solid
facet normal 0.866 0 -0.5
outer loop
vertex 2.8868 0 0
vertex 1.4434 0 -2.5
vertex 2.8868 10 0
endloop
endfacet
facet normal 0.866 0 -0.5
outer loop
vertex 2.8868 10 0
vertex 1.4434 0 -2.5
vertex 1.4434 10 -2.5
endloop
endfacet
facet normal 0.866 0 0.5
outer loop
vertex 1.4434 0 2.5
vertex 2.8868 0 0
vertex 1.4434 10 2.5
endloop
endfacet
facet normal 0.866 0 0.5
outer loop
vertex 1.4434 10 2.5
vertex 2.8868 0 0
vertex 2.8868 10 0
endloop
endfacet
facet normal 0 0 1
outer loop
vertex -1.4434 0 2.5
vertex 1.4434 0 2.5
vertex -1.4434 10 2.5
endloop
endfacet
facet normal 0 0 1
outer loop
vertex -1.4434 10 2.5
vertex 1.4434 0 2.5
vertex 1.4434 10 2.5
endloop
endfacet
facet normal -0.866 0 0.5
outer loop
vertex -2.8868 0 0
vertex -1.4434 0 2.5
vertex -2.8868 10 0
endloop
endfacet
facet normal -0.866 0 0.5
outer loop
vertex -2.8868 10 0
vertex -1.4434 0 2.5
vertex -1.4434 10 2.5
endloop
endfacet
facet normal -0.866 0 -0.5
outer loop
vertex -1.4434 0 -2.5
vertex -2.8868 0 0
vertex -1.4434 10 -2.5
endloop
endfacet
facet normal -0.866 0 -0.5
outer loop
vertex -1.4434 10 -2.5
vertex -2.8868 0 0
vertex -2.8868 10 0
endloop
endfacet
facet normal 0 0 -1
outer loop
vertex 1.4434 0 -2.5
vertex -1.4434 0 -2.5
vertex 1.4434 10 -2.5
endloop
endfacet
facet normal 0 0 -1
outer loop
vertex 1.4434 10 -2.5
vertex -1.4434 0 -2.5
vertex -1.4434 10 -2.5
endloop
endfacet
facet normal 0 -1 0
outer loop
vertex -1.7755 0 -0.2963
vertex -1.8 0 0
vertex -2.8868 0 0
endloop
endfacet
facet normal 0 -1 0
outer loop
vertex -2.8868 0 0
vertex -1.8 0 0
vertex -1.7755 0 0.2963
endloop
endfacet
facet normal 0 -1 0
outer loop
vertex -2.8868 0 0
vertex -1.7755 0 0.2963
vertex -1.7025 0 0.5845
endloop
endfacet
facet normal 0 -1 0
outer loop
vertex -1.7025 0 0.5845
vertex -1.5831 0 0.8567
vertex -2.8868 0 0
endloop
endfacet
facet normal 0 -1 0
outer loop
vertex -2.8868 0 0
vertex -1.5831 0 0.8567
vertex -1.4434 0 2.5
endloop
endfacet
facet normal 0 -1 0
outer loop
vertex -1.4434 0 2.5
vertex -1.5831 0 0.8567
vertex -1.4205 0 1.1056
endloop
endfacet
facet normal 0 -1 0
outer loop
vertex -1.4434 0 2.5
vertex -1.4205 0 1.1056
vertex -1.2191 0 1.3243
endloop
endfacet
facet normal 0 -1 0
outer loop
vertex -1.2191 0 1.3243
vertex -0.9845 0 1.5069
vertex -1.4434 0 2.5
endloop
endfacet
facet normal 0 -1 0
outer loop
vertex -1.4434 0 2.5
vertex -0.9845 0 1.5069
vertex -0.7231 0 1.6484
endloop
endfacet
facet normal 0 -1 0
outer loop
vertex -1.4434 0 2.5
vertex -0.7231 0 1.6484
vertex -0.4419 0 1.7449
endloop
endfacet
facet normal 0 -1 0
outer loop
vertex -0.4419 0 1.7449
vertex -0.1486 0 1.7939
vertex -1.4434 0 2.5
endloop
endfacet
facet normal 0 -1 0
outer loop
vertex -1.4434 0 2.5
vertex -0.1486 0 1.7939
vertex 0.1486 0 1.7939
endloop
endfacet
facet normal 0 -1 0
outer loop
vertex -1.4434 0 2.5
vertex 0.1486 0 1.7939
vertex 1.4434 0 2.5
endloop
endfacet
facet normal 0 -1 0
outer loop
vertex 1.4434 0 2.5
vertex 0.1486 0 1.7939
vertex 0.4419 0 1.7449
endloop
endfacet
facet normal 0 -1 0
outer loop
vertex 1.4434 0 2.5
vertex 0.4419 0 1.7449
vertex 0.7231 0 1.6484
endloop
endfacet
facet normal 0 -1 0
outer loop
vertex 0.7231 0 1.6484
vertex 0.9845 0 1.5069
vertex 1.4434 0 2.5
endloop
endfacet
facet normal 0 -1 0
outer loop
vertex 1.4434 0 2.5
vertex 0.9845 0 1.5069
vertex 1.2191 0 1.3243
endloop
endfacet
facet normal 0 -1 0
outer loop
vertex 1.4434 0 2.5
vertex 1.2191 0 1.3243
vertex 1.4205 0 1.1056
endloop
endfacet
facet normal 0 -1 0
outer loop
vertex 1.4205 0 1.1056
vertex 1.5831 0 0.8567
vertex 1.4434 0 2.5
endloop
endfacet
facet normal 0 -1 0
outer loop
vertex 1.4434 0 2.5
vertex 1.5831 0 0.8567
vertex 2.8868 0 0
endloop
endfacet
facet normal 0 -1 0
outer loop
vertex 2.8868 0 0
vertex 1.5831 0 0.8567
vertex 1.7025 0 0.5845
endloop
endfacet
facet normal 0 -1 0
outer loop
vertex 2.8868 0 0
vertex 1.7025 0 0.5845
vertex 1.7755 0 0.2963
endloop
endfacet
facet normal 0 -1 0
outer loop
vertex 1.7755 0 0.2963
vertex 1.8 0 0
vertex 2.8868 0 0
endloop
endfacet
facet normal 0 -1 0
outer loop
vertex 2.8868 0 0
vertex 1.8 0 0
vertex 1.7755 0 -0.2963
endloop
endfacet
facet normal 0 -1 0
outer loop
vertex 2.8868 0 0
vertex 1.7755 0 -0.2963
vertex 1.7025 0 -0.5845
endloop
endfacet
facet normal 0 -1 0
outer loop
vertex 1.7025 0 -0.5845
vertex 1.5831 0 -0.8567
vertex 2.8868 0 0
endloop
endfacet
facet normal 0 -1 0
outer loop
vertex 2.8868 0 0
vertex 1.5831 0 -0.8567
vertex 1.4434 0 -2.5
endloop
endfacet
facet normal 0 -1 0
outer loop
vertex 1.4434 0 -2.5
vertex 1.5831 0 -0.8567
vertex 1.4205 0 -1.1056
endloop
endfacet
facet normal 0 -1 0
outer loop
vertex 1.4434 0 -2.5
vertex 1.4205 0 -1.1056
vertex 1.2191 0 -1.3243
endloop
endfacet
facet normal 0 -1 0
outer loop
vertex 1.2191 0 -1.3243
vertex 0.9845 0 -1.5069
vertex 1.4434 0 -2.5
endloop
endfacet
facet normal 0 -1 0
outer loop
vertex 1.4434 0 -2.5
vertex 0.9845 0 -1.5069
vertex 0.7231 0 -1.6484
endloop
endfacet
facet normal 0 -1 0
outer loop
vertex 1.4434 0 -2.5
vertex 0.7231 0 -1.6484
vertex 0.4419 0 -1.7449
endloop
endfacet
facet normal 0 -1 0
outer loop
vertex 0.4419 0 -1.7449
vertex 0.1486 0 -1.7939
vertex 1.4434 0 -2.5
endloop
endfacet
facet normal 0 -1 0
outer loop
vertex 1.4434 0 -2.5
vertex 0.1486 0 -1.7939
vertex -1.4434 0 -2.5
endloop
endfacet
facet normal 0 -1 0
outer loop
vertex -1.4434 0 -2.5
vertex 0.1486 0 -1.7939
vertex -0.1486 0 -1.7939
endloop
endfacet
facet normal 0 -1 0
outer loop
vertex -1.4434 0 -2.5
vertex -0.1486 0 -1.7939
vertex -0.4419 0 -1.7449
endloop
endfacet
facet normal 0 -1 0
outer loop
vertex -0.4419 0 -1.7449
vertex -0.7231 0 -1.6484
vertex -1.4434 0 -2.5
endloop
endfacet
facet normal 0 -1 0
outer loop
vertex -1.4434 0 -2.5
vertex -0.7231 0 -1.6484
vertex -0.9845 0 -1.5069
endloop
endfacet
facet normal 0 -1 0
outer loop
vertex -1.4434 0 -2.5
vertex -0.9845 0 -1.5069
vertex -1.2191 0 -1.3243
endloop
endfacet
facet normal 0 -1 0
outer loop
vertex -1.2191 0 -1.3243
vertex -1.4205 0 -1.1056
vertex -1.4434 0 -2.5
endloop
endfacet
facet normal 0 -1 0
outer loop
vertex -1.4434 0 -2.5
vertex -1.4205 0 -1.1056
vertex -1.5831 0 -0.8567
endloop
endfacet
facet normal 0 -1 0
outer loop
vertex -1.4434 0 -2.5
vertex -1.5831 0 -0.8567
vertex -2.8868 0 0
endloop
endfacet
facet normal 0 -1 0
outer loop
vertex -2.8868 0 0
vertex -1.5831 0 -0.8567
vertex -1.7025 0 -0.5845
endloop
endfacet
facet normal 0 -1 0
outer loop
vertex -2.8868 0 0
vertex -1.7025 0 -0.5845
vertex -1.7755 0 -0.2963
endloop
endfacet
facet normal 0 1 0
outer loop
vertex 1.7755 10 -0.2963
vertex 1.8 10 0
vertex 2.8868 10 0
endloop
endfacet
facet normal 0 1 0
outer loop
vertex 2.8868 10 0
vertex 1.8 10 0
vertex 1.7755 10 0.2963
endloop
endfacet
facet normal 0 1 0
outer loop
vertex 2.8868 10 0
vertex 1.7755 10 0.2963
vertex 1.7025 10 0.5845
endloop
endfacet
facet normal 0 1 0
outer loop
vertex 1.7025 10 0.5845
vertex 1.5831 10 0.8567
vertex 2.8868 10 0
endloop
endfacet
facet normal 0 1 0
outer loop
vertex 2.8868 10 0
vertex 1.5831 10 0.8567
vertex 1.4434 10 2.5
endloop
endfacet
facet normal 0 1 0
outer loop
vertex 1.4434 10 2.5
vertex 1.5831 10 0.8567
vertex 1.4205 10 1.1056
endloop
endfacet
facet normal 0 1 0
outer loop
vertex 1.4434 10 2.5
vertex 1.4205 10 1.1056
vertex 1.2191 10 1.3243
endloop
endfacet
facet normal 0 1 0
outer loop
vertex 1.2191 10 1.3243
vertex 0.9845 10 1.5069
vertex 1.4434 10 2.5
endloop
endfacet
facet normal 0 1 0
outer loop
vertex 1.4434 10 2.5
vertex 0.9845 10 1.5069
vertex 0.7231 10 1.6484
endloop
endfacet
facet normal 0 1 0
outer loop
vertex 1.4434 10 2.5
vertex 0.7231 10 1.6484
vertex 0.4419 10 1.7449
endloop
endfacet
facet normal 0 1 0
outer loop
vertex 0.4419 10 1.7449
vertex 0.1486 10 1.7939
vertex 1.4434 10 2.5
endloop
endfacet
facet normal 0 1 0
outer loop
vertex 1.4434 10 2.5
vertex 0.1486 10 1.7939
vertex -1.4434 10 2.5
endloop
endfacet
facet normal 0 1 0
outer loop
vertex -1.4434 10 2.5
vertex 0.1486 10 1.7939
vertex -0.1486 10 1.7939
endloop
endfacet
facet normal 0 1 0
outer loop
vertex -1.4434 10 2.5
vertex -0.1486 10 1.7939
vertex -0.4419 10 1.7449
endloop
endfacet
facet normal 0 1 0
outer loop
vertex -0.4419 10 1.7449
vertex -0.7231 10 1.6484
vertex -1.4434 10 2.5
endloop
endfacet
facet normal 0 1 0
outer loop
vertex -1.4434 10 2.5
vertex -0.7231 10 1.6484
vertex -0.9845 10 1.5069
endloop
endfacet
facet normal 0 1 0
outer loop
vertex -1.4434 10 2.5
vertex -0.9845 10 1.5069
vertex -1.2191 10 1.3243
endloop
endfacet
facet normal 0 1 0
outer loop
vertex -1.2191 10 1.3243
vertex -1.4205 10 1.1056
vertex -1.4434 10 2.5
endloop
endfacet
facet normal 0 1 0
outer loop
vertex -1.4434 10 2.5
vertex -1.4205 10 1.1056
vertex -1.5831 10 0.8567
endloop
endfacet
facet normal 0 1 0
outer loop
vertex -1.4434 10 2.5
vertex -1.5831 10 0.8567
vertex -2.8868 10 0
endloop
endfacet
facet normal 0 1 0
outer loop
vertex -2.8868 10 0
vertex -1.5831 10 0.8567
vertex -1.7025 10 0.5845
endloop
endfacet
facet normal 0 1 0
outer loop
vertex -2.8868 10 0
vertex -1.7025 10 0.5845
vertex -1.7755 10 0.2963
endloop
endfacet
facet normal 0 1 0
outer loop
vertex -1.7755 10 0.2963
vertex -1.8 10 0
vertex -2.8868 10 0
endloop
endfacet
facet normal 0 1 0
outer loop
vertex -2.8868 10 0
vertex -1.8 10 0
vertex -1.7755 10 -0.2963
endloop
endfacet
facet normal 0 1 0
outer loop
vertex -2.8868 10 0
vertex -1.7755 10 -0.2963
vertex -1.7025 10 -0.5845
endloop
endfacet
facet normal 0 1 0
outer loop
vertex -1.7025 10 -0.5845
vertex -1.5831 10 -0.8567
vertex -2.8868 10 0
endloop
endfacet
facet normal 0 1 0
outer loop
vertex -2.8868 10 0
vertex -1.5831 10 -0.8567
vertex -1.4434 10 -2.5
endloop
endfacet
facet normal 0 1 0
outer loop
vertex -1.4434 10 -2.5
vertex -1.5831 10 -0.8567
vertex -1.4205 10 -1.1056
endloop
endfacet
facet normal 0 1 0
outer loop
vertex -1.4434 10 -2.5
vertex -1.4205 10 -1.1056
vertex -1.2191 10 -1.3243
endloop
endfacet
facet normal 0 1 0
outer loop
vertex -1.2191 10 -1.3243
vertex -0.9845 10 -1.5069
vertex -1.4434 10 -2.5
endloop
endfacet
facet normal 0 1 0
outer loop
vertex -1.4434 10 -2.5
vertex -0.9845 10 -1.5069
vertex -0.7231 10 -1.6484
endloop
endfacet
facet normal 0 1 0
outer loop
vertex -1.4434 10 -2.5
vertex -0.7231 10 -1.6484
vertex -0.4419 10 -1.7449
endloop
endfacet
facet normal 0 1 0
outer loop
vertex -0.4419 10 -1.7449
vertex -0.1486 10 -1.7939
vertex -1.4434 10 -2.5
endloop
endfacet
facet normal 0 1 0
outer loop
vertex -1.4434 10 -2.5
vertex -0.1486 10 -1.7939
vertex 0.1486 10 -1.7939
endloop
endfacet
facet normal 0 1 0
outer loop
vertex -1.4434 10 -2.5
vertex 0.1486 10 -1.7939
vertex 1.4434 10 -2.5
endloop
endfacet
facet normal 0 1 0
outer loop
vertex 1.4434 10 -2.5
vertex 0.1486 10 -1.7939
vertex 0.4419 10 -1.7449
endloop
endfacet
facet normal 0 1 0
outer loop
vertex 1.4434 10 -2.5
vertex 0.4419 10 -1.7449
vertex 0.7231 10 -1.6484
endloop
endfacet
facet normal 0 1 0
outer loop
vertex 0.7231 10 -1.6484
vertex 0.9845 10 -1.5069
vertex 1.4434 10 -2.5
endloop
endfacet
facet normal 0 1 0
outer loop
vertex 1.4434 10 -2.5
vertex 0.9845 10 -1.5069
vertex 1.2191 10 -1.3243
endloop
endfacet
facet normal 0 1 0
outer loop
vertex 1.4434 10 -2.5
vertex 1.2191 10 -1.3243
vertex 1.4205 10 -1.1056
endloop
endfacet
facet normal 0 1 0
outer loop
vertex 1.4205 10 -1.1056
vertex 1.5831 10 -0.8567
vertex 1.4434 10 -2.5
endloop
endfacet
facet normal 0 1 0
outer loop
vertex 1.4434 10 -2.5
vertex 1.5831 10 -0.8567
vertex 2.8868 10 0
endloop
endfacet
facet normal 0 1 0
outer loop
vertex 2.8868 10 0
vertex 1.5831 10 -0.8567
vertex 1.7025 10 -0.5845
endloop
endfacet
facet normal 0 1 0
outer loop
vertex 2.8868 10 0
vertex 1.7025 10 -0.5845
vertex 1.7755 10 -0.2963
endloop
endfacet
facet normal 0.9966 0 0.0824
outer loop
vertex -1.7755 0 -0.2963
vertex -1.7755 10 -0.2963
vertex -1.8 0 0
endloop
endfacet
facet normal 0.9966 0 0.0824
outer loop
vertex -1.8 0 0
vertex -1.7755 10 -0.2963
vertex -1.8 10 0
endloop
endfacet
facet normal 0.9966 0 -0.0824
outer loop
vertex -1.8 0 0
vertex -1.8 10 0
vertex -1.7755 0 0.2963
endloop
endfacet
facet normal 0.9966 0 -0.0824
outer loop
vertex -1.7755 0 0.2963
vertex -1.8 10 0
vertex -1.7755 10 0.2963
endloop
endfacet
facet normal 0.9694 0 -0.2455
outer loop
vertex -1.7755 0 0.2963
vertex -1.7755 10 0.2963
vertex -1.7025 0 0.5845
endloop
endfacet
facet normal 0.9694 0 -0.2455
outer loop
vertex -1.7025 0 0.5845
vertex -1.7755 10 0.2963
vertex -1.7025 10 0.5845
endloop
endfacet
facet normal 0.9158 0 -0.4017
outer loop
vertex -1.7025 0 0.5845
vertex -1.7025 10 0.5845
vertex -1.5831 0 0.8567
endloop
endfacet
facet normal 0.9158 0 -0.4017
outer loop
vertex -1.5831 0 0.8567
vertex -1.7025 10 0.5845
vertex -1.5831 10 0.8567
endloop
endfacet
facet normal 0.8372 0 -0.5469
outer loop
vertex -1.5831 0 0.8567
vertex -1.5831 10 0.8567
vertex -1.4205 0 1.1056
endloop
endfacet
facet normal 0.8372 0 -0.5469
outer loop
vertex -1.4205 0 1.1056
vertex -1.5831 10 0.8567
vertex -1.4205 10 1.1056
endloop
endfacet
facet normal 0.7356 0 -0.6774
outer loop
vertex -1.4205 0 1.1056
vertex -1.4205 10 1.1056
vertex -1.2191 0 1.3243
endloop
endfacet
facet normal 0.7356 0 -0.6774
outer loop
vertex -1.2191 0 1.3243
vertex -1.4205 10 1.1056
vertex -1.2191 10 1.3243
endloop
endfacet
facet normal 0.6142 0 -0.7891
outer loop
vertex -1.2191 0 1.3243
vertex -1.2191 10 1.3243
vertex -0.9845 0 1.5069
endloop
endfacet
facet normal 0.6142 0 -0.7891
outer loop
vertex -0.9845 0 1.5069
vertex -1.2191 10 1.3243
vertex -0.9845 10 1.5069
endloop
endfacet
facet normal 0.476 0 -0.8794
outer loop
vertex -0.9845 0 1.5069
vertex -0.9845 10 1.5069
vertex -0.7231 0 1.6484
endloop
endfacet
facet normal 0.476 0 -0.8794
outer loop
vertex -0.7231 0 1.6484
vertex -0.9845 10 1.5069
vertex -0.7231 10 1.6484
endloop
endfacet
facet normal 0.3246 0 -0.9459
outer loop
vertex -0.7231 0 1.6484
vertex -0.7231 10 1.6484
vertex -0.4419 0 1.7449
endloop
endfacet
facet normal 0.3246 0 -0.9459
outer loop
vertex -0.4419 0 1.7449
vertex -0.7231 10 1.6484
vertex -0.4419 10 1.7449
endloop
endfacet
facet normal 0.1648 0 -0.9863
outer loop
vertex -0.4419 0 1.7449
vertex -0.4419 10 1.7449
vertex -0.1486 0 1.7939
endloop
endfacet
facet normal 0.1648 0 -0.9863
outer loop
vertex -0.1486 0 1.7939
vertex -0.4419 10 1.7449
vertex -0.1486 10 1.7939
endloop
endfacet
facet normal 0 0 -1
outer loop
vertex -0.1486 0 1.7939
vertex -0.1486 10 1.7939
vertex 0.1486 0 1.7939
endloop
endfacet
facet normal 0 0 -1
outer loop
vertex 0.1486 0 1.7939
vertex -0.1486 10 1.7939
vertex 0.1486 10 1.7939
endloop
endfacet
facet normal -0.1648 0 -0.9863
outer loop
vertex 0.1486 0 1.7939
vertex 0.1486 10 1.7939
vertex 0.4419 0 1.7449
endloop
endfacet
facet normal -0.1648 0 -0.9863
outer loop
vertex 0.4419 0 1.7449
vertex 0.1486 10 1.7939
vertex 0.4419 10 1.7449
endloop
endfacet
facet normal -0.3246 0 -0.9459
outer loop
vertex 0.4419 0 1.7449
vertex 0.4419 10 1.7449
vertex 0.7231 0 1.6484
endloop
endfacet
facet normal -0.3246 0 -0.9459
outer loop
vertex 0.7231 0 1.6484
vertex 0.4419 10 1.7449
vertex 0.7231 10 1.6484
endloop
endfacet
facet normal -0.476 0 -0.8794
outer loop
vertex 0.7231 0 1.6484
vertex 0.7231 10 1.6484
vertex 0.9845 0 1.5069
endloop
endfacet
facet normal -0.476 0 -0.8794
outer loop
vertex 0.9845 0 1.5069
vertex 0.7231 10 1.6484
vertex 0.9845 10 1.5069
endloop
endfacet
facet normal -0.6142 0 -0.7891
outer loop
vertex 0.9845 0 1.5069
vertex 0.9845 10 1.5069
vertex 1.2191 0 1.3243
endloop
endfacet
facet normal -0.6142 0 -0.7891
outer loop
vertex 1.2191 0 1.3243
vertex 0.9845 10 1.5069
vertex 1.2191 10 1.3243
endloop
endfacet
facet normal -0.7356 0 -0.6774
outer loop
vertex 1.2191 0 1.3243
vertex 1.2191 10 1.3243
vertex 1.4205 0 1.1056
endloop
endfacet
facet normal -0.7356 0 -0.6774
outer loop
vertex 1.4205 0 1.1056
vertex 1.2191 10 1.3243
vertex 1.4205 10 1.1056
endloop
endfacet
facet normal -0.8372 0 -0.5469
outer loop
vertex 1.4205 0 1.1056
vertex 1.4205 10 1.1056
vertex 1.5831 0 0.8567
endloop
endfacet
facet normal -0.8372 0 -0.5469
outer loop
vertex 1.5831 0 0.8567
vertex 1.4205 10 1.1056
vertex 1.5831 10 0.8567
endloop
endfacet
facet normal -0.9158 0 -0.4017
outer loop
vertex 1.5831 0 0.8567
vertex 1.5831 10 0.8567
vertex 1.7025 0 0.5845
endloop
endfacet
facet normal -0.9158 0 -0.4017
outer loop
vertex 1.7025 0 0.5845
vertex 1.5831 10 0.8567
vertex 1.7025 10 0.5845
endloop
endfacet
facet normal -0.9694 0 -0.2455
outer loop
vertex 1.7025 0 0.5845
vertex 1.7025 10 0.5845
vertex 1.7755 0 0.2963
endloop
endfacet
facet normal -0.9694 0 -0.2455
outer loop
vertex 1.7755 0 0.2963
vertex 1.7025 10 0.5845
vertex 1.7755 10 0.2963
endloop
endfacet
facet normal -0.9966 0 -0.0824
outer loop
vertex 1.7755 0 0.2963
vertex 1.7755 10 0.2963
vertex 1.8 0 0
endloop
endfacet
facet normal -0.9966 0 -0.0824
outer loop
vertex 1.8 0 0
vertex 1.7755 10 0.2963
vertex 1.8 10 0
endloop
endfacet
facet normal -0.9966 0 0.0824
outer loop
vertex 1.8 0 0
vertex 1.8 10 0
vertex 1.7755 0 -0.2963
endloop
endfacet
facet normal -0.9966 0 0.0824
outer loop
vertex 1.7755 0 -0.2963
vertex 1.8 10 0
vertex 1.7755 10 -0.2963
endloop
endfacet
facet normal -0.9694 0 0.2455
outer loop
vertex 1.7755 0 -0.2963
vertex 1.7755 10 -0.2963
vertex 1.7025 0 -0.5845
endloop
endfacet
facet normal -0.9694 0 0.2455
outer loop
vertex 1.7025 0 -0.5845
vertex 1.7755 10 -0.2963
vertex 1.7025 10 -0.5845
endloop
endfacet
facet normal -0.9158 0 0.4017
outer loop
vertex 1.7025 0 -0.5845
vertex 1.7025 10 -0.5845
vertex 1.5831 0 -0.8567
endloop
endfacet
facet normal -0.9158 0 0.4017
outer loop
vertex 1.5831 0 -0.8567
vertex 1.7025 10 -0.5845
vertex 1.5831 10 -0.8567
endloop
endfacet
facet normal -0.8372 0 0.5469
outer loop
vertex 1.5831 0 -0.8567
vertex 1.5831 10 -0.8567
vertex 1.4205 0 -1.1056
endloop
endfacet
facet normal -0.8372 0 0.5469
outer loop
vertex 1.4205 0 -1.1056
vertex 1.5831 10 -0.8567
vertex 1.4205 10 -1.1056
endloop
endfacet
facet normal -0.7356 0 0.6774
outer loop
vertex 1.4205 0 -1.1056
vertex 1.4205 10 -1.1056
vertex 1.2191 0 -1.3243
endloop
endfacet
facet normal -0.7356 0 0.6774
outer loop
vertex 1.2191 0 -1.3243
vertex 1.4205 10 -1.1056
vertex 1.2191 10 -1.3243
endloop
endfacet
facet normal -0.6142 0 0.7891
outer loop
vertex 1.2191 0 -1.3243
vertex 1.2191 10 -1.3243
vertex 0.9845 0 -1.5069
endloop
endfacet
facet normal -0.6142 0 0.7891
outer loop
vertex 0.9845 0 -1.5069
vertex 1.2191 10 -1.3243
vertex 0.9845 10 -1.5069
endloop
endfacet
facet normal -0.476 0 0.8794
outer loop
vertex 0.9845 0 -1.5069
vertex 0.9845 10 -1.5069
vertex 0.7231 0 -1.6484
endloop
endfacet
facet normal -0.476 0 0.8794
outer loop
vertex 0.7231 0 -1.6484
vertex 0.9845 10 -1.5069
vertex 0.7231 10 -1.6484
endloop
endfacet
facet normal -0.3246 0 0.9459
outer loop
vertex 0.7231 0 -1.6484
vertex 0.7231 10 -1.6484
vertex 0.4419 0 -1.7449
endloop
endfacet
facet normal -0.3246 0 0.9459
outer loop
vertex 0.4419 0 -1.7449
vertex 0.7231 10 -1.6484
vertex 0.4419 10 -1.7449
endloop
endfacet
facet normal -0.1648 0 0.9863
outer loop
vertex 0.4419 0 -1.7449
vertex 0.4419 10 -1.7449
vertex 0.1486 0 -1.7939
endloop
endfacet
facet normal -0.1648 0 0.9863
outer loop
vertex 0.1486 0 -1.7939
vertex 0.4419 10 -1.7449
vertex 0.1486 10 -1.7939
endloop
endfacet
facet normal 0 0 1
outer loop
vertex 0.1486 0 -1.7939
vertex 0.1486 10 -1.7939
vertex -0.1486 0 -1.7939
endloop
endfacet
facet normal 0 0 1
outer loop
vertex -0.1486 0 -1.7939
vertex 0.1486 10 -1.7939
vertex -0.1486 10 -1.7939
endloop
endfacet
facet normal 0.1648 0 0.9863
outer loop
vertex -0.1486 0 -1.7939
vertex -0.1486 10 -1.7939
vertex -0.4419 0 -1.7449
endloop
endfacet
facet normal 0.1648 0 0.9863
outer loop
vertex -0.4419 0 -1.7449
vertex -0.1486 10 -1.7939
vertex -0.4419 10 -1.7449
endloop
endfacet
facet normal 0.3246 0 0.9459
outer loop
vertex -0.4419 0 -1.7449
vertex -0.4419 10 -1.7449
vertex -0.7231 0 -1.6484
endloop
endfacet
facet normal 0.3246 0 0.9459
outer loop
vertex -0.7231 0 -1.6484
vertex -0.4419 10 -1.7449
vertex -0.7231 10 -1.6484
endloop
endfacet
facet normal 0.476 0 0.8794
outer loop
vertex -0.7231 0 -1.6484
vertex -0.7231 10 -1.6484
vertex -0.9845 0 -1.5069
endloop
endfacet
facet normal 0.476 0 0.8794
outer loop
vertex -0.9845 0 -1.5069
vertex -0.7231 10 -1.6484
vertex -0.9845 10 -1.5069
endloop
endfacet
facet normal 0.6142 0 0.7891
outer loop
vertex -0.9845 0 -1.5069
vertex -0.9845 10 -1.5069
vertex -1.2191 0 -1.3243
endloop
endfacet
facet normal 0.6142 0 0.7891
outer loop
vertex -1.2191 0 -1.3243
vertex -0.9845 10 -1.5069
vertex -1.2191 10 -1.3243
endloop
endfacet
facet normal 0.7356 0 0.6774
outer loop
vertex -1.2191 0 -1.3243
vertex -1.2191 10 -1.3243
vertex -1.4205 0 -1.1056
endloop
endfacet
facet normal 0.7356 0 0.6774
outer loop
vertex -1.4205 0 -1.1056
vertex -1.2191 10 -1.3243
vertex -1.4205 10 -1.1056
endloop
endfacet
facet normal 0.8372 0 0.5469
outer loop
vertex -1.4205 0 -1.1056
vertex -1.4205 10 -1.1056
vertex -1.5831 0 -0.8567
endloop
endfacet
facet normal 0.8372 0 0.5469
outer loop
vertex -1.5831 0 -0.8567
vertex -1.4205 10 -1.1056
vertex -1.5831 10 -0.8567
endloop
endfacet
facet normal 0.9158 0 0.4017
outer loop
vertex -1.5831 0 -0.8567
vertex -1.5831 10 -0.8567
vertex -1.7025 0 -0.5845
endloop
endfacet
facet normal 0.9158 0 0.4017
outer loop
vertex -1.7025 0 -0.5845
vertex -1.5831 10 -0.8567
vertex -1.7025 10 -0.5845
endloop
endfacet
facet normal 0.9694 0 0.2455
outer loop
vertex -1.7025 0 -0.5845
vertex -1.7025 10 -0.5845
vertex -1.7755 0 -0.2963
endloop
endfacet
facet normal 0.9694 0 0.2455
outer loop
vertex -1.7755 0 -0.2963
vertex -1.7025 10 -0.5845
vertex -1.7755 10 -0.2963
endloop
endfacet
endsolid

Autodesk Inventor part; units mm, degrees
ref_plane "YZ Plane" through (0, 0, 0) normal (1, 0, 0) x (0, 1, 0)
ref_plane "XZ Plane" through (0, 0, 0) normal (0, 1, 0) x (-1, 0, 0)
ref_plane "XY Plane" through (0, 0, 0) normal (0, 0, 1) x (1, 0, 0)
sketch "Sketch3" plane through (0, 0, 0) normal (0, 1, 0) x (-1, 0, 0)
  line L0 (0, 0) -> (0, -2.5)
  line L1 (-1.4434, -2.5) -> (-2.8868, 0)
  line L2 (-2.8868, 0) -> (-1.4434, 2.5)
  line L3 (-1.4434, 2.5) -> (1.4434, 2.5)
  line L4 (1.4434, 2.5) -> (2.8868, 0)
  line L5 (2.8868, 0) -> (1.4434, -2.5)
  line L6 (1.4434, -2.5) -> (-1.4434, -2.5)
  dimension "d3" = 2.5
extrude "Extrusion2" add sketch "Sketch3" along normal blind 10
sketch "Sketch4" plane through (0, 10, 0) normal (0, 1, 0) x (1, 0, 0)
  point P0 (0, 0)
  point P1 (0, 0)
hole "Hole1" at (0, 10, 0) direction (0, -1, 0) diameter 3.6 end through all clearance for "Socket Head Cap Screw ISO 4762" size "M3" standard "ISO"
properties part number "M3x10"
